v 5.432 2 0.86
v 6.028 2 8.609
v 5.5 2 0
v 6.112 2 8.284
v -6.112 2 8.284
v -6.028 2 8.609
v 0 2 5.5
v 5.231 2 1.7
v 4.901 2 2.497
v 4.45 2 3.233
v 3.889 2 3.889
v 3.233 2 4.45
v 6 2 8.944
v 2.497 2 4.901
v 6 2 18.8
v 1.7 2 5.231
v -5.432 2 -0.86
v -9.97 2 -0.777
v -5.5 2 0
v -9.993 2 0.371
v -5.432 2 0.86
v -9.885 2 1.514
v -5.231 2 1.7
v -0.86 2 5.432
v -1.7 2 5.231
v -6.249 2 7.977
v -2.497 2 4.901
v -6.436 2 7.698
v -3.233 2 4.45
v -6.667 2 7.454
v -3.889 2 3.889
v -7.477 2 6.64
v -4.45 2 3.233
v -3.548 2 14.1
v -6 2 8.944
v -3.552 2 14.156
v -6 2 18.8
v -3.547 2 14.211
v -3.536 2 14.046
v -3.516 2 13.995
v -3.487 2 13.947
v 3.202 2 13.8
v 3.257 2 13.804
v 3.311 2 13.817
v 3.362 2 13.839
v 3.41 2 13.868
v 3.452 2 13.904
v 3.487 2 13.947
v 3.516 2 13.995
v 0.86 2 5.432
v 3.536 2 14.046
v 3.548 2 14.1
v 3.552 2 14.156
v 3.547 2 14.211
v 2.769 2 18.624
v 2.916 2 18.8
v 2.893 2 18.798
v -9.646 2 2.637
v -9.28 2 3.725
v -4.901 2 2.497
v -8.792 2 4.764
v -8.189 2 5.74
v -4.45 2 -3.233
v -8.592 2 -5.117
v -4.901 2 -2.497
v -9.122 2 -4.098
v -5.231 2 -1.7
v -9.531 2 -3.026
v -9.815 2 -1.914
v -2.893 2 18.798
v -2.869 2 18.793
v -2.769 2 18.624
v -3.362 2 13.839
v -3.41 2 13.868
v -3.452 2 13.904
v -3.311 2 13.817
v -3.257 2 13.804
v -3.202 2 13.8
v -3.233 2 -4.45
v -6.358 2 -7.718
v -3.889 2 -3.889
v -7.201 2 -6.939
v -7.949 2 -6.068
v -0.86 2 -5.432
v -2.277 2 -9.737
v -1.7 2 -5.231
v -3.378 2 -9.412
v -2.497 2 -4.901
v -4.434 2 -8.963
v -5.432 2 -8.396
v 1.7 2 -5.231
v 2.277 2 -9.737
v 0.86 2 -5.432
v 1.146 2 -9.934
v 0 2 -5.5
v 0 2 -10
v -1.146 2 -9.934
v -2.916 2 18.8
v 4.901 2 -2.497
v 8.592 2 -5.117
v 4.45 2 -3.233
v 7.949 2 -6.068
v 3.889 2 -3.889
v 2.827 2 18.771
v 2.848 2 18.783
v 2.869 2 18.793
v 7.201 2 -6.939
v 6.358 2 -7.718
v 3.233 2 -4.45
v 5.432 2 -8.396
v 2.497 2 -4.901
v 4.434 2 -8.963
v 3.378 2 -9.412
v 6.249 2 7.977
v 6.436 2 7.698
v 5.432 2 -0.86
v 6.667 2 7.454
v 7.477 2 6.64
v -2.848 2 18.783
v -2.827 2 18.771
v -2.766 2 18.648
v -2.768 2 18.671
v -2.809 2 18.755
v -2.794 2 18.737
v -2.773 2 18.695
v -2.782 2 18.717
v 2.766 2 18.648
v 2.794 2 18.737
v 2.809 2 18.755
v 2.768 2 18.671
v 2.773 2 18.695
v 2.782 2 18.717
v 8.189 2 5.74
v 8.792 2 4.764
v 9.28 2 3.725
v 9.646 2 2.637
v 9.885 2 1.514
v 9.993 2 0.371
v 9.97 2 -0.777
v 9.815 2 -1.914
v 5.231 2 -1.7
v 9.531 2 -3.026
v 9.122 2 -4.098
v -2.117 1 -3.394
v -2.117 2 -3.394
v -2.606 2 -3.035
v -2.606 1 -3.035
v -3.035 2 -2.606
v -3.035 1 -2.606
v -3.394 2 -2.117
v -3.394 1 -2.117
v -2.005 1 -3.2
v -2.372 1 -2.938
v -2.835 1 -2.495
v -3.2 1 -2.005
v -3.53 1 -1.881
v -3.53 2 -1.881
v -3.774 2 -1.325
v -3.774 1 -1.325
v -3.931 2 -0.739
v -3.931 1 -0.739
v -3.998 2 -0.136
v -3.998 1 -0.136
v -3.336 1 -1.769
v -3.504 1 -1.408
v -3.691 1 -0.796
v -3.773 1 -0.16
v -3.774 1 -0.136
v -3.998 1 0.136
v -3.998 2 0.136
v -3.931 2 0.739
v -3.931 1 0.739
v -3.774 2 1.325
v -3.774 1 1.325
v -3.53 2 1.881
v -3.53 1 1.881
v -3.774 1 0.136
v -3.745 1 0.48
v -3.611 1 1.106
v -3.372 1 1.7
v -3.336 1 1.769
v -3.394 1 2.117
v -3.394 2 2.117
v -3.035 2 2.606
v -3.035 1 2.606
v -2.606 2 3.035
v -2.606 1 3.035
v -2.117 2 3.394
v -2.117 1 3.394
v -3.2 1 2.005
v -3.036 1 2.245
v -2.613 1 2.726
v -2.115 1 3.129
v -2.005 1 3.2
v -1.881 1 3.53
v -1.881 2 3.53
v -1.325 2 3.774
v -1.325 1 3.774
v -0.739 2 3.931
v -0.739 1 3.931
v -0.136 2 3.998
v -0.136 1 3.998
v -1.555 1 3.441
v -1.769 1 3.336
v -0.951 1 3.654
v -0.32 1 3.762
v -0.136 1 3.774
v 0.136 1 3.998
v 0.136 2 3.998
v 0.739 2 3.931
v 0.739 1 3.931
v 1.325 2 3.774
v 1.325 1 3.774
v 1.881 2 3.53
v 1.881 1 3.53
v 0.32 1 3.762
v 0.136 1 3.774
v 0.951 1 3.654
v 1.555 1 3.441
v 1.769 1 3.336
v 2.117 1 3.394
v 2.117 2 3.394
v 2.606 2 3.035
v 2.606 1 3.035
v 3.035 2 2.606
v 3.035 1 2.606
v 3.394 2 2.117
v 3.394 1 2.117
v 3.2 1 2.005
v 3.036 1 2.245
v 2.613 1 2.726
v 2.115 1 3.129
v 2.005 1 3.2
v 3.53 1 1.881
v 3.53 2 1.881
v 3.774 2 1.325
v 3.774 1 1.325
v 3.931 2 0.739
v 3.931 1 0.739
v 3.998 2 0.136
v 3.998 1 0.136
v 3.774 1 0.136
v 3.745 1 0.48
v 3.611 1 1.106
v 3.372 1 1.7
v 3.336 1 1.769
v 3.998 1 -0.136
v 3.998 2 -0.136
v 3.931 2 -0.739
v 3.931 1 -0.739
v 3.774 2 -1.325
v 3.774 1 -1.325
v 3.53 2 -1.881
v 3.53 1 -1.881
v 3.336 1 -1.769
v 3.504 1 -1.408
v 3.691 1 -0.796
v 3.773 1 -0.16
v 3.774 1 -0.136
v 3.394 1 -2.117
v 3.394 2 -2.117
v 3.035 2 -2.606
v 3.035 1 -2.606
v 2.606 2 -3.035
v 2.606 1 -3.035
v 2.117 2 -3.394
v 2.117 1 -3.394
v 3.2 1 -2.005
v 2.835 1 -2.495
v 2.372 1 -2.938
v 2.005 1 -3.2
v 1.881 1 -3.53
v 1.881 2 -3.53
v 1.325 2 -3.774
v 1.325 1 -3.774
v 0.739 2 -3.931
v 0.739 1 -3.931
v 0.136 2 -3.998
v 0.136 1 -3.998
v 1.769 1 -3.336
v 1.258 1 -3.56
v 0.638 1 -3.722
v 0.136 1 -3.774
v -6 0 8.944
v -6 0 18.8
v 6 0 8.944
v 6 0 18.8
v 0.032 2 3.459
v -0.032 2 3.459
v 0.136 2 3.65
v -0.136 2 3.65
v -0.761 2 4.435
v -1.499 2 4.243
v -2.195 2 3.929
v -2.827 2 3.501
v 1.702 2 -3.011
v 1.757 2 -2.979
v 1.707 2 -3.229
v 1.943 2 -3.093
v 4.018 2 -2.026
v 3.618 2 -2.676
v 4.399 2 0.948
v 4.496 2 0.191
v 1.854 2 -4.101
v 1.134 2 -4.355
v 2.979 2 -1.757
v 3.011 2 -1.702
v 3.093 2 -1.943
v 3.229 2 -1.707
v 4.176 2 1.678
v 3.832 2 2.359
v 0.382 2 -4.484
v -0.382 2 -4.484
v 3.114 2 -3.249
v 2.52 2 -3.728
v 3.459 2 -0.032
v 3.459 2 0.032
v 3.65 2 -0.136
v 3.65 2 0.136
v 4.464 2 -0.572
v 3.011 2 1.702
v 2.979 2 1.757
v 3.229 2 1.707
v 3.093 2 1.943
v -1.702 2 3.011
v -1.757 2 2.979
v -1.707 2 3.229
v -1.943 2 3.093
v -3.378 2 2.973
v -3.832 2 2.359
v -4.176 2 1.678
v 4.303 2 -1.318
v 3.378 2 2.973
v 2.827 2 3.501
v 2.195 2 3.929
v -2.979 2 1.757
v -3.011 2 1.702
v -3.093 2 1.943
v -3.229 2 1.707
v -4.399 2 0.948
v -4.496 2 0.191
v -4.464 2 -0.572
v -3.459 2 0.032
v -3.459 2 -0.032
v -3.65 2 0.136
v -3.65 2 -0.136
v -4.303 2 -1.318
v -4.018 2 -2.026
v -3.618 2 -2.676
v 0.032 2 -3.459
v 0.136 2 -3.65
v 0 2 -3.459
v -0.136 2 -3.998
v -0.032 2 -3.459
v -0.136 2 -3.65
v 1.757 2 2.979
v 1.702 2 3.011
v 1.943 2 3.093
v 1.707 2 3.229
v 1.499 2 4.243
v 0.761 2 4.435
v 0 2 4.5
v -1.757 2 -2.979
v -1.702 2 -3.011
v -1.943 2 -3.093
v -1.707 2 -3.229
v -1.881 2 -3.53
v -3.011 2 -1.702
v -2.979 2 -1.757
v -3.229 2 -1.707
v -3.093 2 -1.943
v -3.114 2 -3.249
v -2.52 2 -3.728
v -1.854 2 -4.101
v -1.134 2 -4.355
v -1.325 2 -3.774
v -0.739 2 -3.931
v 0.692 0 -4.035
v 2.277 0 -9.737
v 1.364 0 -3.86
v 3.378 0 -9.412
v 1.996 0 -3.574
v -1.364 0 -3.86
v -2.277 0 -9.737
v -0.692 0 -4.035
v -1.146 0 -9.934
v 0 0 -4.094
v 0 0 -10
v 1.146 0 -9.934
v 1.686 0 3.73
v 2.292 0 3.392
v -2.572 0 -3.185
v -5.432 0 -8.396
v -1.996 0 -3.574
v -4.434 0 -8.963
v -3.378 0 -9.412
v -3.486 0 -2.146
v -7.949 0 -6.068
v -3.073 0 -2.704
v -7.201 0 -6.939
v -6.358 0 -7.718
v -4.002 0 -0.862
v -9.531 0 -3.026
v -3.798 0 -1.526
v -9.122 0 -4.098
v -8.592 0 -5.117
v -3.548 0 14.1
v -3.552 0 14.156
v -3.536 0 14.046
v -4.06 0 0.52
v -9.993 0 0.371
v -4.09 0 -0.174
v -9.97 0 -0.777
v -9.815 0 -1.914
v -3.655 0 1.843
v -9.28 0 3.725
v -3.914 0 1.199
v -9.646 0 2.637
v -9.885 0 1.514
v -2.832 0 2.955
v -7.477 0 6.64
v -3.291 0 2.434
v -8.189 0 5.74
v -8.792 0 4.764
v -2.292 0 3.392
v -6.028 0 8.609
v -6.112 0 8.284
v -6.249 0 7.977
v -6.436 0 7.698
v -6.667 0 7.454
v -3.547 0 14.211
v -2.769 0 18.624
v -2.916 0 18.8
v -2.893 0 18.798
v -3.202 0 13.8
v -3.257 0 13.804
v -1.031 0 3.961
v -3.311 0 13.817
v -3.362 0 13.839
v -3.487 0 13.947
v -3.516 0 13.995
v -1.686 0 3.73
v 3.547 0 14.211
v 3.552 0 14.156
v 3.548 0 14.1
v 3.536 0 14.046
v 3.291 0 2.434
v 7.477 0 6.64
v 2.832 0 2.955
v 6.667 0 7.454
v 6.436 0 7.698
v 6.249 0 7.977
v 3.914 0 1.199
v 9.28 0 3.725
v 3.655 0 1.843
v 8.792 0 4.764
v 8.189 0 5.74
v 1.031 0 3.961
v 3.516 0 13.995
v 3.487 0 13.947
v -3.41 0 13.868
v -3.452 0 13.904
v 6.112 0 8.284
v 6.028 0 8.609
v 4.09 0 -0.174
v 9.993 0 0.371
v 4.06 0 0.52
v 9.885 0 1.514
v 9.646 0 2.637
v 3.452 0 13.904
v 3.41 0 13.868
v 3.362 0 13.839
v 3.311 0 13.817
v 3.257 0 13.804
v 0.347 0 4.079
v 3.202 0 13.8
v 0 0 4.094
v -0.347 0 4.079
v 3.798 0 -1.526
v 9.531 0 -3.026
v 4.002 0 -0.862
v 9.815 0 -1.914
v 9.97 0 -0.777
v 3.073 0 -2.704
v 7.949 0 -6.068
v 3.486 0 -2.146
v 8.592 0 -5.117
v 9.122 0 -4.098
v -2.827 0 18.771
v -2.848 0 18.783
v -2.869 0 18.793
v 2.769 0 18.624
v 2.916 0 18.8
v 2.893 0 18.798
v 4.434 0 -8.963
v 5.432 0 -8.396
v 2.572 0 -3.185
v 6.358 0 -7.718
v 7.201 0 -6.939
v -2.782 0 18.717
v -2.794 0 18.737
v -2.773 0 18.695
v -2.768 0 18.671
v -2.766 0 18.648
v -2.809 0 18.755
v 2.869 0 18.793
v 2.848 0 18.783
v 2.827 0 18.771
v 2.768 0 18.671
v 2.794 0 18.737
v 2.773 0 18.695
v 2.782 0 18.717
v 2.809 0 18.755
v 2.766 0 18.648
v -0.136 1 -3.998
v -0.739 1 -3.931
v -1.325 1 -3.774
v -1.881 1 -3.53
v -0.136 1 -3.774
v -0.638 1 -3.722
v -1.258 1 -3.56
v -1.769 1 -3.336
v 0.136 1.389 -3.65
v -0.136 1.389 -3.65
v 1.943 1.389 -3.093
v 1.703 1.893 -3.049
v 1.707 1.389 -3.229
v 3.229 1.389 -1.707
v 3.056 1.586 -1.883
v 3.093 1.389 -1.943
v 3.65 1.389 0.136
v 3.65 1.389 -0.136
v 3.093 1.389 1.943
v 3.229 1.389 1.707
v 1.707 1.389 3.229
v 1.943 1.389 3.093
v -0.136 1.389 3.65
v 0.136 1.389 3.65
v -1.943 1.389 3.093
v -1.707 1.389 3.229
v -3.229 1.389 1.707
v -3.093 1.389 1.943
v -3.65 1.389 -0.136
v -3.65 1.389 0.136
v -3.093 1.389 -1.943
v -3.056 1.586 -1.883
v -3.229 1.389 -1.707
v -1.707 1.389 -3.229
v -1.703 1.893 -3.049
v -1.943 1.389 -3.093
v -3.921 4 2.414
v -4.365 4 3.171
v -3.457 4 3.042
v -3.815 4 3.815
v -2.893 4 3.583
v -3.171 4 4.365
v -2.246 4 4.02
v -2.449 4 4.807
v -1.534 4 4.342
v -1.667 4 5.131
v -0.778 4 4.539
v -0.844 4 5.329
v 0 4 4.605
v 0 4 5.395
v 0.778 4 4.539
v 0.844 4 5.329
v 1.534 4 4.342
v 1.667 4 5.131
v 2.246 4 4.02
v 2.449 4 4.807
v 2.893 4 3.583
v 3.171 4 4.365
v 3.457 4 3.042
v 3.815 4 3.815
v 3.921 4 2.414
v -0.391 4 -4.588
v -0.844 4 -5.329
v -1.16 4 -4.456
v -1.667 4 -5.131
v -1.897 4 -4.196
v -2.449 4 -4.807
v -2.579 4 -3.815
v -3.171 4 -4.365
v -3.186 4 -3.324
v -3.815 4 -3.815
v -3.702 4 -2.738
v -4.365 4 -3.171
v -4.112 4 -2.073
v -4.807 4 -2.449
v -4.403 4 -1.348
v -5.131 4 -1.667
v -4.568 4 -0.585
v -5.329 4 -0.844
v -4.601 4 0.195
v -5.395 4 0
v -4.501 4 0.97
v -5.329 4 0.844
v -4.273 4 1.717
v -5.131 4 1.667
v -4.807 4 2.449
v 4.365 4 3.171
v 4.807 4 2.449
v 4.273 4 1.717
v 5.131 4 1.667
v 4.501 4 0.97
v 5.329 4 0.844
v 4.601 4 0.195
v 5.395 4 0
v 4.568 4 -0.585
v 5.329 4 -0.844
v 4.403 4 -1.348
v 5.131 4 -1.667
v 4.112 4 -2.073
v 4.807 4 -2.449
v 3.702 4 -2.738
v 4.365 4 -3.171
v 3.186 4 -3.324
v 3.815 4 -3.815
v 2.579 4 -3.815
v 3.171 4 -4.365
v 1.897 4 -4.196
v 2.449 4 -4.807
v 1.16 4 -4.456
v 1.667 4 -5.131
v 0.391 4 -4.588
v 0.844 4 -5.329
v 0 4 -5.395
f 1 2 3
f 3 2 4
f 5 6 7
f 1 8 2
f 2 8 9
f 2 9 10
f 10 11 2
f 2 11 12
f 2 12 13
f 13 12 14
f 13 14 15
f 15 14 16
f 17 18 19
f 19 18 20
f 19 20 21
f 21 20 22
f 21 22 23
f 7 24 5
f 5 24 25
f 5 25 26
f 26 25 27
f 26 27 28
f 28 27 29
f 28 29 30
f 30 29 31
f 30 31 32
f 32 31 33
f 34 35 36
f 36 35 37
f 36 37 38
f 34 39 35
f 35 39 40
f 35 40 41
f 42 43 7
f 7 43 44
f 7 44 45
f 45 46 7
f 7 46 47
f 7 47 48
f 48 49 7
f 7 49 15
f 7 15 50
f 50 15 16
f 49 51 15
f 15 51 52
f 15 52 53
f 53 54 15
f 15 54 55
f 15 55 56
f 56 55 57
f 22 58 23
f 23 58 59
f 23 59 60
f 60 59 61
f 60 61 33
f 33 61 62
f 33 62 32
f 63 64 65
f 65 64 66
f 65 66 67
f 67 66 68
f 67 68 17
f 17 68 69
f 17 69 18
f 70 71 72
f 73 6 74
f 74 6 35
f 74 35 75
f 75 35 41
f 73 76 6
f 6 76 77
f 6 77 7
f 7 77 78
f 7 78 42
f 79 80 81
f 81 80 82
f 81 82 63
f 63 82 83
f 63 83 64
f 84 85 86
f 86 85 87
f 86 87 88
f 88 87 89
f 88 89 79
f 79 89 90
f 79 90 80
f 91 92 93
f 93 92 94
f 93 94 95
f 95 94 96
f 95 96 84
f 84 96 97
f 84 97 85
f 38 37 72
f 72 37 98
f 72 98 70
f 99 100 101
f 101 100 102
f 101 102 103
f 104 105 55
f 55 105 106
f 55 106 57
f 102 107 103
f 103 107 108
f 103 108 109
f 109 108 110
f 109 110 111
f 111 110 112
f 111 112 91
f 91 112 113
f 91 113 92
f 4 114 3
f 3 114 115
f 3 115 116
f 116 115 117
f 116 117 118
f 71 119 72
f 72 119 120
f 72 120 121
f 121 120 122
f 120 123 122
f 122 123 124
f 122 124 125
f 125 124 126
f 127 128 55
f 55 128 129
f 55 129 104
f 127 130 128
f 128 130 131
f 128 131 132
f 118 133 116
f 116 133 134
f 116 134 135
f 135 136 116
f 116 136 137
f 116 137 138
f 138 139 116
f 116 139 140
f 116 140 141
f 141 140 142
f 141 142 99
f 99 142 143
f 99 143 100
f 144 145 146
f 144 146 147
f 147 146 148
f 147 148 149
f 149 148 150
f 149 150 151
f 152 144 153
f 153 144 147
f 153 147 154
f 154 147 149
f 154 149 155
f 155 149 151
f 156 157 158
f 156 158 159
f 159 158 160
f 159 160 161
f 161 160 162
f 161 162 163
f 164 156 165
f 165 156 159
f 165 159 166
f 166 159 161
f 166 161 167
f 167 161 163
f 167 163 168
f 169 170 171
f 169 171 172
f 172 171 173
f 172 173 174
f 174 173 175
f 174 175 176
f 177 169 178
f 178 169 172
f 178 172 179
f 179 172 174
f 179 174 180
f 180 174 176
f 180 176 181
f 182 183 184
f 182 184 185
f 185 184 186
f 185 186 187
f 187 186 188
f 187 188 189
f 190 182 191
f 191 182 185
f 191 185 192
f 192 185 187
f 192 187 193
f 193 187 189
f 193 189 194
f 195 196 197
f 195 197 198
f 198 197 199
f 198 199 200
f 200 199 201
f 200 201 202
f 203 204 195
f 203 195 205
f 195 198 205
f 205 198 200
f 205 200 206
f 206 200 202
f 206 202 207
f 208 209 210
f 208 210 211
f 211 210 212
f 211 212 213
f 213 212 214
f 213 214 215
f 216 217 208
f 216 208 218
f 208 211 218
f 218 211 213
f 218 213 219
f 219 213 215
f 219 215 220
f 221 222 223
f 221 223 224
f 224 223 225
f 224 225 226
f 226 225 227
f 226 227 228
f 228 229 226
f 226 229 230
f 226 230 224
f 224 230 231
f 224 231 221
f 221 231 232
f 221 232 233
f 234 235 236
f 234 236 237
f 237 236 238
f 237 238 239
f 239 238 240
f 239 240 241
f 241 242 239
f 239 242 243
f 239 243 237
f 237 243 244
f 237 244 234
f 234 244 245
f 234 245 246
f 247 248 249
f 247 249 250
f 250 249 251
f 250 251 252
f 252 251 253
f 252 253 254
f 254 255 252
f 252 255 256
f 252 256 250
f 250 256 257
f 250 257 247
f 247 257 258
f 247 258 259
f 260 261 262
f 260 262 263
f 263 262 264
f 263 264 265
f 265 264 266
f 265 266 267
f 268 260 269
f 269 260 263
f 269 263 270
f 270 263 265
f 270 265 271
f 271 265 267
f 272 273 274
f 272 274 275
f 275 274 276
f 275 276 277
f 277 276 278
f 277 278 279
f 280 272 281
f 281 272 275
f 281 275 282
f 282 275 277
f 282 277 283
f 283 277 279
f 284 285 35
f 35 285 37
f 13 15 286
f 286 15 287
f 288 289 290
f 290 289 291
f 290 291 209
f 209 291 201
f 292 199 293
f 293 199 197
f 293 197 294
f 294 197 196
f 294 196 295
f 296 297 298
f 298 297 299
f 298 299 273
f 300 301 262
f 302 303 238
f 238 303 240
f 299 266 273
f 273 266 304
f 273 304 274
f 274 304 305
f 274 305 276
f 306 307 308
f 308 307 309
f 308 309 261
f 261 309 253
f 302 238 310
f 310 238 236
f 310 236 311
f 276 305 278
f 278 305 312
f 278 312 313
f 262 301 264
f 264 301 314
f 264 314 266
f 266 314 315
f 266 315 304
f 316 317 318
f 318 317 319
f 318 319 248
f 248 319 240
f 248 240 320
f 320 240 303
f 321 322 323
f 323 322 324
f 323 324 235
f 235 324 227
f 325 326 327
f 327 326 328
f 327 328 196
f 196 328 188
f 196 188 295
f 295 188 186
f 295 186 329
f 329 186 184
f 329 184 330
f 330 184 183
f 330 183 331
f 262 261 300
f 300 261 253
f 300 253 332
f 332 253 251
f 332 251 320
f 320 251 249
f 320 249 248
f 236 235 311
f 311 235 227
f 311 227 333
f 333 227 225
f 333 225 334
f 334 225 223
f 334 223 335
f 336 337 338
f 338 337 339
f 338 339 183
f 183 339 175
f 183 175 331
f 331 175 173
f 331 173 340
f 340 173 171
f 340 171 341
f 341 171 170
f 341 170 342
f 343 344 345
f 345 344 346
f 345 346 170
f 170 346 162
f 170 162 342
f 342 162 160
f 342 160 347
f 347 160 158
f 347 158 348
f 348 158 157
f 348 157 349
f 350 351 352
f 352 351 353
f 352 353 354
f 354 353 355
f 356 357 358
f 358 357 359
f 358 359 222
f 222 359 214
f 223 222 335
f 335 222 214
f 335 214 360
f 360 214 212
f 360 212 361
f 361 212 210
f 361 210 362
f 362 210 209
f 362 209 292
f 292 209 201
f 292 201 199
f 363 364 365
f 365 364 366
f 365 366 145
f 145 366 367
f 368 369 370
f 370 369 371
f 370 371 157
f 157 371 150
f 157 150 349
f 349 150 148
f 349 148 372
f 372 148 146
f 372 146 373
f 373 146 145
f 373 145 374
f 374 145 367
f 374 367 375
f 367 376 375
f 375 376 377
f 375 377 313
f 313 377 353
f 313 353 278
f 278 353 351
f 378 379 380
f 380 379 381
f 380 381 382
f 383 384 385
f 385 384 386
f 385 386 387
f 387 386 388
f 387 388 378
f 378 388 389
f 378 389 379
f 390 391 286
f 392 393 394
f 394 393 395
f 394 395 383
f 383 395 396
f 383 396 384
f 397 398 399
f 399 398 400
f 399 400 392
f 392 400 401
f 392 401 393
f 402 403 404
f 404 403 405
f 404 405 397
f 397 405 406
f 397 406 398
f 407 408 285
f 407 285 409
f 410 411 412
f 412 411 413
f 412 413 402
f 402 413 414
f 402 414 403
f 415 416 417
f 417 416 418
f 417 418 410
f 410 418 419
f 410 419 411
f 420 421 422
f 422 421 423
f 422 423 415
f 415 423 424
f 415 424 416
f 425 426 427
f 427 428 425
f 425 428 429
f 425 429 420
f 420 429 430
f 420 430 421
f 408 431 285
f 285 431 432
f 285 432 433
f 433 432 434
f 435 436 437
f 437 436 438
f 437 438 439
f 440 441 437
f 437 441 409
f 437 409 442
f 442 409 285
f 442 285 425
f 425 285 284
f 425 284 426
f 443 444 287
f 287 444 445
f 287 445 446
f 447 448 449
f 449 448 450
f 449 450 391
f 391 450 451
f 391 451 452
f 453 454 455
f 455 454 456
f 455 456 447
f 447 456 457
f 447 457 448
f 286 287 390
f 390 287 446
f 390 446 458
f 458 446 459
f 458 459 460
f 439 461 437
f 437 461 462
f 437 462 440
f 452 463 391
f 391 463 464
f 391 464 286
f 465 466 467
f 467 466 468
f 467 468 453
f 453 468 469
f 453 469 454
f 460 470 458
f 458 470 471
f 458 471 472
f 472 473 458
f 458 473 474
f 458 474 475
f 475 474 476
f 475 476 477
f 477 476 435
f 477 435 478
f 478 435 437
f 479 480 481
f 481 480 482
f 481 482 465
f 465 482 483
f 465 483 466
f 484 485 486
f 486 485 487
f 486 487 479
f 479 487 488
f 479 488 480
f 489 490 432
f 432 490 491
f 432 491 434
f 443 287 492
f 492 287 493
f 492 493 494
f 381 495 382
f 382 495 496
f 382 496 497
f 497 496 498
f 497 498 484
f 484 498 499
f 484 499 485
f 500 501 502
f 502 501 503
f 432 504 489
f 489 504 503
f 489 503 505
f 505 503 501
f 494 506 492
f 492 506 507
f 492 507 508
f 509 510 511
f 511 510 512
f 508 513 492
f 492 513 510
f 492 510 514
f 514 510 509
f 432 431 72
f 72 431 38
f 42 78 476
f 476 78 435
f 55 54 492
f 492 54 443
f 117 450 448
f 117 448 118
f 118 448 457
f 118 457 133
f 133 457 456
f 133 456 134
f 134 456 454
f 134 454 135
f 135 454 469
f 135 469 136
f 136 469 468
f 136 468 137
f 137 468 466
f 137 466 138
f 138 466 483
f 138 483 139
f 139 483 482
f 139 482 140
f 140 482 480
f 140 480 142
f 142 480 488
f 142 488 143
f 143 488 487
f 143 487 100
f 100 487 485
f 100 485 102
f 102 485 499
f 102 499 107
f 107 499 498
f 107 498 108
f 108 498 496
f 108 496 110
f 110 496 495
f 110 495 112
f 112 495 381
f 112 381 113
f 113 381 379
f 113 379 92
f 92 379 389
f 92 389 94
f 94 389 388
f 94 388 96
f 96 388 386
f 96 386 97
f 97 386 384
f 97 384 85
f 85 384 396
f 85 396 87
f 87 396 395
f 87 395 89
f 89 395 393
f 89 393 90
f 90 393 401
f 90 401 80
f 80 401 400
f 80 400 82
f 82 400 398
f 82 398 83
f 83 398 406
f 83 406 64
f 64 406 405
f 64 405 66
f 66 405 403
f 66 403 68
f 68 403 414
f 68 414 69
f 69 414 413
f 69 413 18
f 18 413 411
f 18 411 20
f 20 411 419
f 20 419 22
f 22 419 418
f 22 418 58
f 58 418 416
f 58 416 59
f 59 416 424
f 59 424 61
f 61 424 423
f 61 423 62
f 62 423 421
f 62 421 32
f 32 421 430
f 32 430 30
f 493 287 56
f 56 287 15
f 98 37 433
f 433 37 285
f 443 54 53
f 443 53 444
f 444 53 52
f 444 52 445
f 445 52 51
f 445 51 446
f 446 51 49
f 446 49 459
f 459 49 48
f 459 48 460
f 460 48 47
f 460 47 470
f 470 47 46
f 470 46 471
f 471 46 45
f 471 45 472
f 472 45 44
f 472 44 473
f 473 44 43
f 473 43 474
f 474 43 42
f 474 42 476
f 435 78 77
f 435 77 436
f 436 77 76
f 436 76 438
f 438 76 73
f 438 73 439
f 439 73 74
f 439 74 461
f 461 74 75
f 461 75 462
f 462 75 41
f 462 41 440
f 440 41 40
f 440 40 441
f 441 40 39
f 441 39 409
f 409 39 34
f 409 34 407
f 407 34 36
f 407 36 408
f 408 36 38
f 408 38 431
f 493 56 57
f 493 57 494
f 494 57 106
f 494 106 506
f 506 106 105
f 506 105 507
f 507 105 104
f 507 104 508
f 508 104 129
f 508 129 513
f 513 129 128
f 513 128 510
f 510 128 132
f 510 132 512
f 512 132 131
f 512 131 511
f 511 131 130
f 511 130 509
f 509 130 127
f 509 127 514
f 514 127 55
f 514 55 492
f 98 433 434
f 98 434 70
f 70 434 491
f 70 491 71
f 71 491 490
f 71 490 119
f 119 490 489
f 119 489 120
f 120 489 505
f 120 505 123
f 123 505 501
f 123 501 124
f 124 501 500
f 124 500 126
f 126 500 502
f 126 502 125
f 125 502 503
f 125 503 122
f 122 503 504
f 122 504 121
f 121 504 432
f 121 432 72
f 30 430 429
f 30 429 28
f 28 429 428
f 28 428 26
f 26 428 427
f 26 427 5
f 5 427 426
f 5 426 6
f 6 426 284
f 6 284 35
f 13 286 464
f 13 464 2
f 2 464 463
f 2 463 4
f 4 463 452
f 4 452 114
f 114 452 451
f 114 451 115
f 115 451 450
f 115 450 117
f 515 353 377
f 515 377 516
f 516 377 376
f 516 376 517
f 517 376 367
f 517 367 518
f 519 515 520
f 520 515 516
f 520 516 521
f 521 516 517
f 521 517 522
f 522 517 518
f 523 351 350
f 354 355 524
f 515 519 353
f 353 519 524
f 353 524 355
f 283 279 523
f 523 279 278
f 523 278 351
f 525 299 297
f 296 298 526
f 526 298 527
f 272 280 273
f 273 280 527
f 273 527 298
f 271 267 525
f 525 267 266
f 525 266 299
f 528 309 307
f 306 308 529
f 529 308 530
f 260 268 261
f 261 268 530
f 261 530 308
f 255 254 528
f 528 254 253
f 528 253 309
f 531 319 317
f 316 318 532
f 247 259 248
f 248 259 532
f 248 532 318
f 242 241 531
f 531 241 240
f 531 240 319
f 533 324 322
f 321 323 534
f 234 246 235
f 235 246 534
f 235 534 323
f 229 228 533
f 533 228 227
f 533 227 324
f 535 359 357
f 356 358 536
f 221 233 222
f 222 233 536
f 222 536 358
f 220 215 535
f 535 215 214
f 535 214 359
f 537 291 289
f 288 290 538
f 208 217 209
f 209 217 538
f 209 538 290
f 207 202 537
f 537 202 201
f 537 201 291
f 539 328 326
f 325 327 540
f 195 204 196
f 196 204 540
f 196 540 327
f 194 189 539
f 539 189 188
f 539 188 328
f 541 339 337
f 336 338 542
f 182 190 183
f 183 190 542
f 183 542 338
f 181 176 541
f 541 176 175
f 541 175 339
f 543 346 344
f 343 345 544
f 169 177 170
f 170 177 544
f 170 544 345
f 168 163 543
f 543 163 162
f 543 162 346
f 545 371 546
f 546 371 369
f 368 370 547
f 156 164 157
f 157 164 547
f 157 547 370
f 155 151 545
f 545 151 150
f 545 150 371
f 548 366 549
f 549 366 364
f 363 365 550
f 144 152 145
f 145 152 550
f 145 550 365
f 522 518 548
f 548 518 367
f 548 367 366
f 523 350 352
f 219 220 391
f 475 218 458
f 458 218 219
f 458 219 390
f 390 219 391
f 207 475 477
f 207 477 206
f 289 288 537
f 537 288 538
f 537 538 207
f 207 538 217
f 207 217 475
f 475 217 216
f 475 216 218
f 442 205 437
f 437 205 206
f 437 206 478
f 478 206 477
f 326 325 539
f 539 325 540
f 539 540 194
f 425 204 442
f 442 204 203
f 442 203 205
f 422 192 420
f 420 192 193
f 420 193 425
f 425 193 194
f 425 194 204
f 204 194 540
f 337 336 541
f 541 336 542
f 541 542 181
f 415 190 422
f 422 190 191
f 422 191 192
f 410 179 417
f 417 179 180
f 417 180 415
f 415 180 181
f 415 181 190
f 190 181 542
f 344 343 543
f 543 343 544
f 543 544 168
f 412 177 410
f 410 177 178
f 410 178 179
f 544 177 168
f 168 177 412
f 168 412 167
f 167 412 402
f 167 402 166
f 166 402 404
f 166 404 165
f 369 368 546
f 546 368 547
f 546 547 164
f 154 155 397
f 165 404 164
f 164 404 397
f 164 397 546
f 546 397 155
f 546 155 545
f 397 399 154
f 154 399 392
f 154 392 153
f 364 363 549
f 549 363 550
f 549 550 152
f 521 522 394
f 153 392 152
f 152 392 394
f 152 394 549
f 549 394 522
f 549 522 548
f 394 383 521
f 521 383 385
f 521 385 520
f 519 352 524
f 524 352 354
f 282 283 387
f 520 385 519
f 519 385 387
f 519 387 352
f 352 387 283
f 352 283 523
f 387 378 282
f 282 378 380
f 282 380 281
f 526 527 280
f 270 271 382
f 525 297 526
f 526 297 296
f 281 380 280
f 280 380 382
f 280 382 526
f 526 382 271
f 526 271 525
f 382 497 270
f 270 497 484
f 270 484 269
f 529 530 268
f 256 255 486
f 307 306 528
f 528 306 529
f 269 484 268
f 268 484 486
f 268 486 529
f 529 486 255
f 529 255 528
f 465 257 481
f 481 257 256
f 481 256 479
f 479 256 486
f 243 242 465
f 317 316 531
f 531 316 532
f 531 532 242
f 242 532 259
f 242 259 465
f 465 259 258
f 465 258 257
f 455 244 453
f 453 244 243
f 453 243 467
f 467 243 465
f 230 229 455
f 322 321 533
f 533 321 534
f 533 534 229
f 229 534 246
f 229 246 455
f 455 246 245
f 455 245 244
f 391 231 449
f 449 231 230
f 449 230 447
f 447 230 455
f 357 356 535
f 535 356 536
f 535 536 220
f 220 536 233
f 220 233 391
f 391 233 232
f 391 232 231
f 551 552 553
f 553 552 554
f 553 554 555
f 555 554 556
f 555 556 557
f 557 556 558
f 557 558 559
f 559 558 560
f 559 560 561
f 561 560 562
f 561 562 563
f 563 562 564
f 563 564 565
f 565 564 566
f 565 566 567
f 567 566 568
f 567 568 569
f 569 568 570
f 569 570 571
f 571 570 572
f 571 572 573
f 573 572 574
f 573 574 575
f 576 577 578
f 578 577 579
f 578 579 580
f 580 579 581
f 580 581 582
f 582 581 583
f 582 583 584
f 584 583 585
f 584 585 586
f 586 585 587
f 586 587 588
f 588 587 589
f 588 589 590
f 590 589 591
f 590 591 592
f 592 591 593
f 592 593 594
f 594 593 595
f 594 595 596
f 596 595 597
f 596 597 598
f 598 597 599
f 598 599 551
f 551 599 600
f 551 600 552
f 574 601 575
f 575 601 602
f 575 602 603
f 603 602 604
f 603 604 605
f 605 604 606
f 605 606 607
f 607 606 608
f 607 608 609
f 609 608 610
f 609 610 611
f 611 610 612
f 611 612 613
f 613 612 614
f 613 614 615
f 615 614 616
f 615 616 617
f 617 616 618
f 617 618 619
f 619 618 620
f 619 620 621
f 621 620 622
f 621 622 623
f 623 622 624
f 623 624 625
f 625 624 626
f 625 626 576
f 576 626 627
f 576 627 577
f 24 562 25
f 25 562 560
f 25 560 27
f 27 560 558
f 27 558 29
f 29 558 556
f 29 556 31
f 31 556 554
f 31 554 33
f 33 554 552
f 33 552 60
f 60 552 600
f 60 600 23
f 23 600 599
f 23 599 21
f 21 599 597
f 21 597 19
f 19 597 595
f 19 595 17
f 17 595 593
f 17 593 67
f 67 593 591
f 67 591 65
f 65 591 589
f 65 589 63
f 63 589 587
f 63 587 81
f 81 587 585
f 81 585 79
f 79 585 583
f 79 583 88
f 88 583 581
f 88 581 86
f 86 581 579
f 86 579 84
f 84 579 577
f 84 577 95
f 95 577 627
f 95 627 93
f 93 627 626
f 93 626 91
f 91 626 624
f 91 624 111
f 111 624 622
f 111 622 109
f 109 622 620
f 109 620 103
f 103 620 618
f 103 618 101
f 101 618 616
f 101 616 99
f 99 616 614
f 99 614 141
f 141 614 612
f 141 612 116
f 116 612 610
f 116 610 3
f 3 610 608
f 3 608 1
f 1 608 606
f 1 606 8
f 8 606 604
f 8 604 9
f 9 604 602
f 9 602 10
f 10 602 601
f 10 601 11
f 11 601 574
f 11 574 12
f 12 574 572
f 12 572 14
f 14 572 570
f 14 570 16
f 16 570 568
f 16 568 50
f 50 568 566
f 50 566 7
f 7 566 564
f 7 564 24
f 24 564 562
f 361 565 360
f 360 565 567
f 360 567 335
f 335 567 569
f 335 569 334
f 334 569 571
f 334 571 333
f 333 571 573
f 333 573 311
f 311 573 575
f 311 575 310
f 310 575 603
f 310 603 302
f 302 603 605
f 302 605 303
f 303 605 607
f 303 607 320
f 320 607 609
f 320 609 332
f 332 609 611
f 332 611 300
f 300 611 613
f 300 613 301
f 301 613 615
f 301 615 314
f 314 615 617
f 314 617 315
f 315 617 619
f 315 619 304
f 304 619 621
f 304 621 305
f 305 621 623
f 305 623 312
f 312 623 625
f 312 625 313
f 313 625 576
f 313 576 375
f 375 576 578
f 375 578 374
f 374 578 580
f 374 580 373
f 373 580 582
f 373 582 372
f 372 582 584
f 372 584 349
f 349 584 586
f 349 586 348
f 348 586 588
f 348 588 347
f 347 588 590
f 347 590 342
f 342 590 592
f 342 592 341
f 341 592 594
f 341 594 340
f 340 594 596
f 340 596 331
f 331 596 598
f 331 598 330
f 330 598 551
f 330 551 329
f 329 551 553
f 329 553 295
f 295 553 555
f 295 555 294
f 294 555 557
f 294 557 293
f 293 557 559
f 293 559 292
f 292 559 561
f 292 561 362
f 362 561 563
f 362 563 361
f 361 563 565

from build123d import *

# Parameters (mm, degrees)
SKETCH1_R           = 3.75
BOSS_EXTRUDE1_DEPTH = 2
SKETCH2_R           = 10
SKETCH2_R_2         = 3.8
BOSS_EXTRUDE2_DEPTH = 2
SKETCH4_W           = 12
SKETCH4_H           = 0.2
CUT_EXTRUDE1_DEPTH  = 4
FILLET3_R           = 0.35
FILLET4_R           = 0.15
FILLET6_R           = 2
SKETCH10_R          = 4
CUT_EXTRUDE4_DEPTH  = 1
BOSS_EXTRUDE6_DEPTH = 2
CIRPATTERN1_COUNT   = 12
SKETCH11_R          = 5.5
SKETCH11_R_2        = 4.5
BOSS_EXTRUDE7_DEPTH = 2
BOSS_EXTRUDE7_DRAFT = 3


with BuildPart() as part:
    # Sketch1 → Boss-Extrude1 (new body)
    with BuildSketch(Plane(origin=(0, 0, 0), x_dir=(1, 0, 0), z_dir=(0, 1, 0))):
        Polygon((-6, 6), (-6, -13.291502622), (-6, -19), (-2.70227506, -19), (-3.619175359, -13.8), (0, -13.8), (3.619175359, -13.8), (2.70227506, -19), (6, -19), (6, -13.291502622), (6, 6), align=None)
        with Locations(Location((0, 0, 0), (0, 0, 270))):
            Circle(SKETCH1_R, mode=Mode.SUBTRACT)
    extrude(amount=BOSS_EXTRUDE1_DEPTH)

    # Sketch2 → Boss-Extrude2 (add)
    with BuildSketch(Plane(origin=(0, 0, 0), x_dir=(1, 0, 0), z_dir=(0, 1, 0))):
        Circle(SKETCH2_R)
        Circle(SKETCH2_R_2, mode=Mode.SUBTRACT)
    extrude(amount=BOSS_EXTRUDE2_DEPTH)

    # Sketch4 → Cut-Extrude1 (cut)
    with BuildSketch(Plane(origin=(0, 2, 0), x_dir=(1, 0, 0), z_dir=(0, 1, 0))):
        with Locations((0, -18.9)):
            Rectangle(SKETCH4_W, SKETCH4_H)
    extrude(amount=-CUT_EXTRUDE1_DEPTH, mode=Mode.SUBTRACT)

    # Fillet3
    fillet3_edges = [part.edges().sort_by_distance(p)[0] for p in [
        (3.619175359, 1, 13.8),
        (-3.619175359, 1, 13.8),
    ]]
    fillet(fillet3_edges, radius=FILLET3_R)

    # Fillet4
    fillet4_edges = [part.edges().sort_by_distance(p)[0] for p in [
        (2.737540456, 1, 18.8),
        (-2.737540456, 1, 18.8),
    ]]
    fillet(fillet4_edges, radius=FILLET4_R)

    # Fillet6
    fillet6_edges = [part.edges().sort_by_distance(p)[0] for p in [
        (6, 1, 8),
        (-6, 1, 8),
    ]]
    fillet(fillet6_edges, radius=FILLET6_R)

    # Sketch10 → Cut-Extrude4 (cut)
    with BuildSketch(Plane(origin=(0, 2, 0), x_dir=(1, 0, 0), z_dir=(0, 1, 0))):
        with Locations(Location((0, 0, 0), (0, 0, 270))):
            Circle(SKETCH10_R)
    extrude(amount=-CUT_EXTRUDE4_DEPTH, mode=Mode.SUBTRACT)

    # Sketch8 → Boss-Extrude6 (add)
    with BuildSketch(Plane(origin=(0, 2, 0), x_dir=(1, 0, 0), z_dir=(0, 1, 0))):
        Polygon((-0.136342372, 3.65), (0, 3.4), (0.136342372, 3.65), (0.136342372, 4.15), (-0.136342372, 4.15), align=None)
    boss_extrude6 = extrude(amount=-BOSS_EXTRUDE6_DEPTH)

    # CirPattern1: Boss-Extrude6 ×12 about axis
    cirpattern1_axis = Axis((0, 0, 0), (0, 1, 0))
    for i in range(1, CIRPATTERN1_COUNT):
        add(boss_extrude6.rotate(cirpattern1_axis, i * 360 / CIRPATTERN1_COUNT))

    # Sketch9 → Cut-Revolve2 (revolve, cut)
    with BuildSketch(Plane(origin=(0, 0, 0), x_dir=(0, 0, -1), z_dir=(1, 0, 0)), mode=Mode.PRIVATE) as cut_revolve2_sk:
        Polygon((3.4, 2.184766015), (4.2, -0.335462065), (0, -0.335462065), (0, 2.184766015), align=None)
    revolve(cut_revolve2_sk.sketch.rotate(Axis((0, 0, 0), (0, 1, 0)), 0.528559578), axis=Axis((0, 0, 0), (0, 1, 0)), mode=Mode.SUBTRACT)


with BuildPart() as boss_extrude7_tool:
    # Sketch11 → Boss-Extrude7 (with draft: the straight prism first)
    with BuildSketch(Plane(origin=(0, 2, 0), x_dir=(1, 0, 0), z_dir=(0, 1, 0))):
        Circle(SKETCH11_R)
        Circle(SKETCH11_R_2, mode=Mode.SUBTRACT)
    extrude(amount=BOSS_EXTRUDE7_DEPTH)
    # Boss-Extrude7: the draft: its side faces are tilted about the plane it starts from
    boss_extrude7_sides = [boss_extrude7_tool.faces().sort_by_distance(p)[0] for p in [
        (-5.5, 3, 0),
        (-4.5, 3, 0),
    ]]
    draft(boss_extrude7_sides, Plane(origin=(0, 2, 0), x_dir=(1, 0, 0), z_dir=(0, 1, 0)), BOSS_EXTRUDE7_DRAFT)


with BuildPart() as part_1:
    add(part.part)

    # Boss-Extrude7: add boss_extrude7_tool
    add(boss_extrude7_tool.part)


solid = part_1.part
